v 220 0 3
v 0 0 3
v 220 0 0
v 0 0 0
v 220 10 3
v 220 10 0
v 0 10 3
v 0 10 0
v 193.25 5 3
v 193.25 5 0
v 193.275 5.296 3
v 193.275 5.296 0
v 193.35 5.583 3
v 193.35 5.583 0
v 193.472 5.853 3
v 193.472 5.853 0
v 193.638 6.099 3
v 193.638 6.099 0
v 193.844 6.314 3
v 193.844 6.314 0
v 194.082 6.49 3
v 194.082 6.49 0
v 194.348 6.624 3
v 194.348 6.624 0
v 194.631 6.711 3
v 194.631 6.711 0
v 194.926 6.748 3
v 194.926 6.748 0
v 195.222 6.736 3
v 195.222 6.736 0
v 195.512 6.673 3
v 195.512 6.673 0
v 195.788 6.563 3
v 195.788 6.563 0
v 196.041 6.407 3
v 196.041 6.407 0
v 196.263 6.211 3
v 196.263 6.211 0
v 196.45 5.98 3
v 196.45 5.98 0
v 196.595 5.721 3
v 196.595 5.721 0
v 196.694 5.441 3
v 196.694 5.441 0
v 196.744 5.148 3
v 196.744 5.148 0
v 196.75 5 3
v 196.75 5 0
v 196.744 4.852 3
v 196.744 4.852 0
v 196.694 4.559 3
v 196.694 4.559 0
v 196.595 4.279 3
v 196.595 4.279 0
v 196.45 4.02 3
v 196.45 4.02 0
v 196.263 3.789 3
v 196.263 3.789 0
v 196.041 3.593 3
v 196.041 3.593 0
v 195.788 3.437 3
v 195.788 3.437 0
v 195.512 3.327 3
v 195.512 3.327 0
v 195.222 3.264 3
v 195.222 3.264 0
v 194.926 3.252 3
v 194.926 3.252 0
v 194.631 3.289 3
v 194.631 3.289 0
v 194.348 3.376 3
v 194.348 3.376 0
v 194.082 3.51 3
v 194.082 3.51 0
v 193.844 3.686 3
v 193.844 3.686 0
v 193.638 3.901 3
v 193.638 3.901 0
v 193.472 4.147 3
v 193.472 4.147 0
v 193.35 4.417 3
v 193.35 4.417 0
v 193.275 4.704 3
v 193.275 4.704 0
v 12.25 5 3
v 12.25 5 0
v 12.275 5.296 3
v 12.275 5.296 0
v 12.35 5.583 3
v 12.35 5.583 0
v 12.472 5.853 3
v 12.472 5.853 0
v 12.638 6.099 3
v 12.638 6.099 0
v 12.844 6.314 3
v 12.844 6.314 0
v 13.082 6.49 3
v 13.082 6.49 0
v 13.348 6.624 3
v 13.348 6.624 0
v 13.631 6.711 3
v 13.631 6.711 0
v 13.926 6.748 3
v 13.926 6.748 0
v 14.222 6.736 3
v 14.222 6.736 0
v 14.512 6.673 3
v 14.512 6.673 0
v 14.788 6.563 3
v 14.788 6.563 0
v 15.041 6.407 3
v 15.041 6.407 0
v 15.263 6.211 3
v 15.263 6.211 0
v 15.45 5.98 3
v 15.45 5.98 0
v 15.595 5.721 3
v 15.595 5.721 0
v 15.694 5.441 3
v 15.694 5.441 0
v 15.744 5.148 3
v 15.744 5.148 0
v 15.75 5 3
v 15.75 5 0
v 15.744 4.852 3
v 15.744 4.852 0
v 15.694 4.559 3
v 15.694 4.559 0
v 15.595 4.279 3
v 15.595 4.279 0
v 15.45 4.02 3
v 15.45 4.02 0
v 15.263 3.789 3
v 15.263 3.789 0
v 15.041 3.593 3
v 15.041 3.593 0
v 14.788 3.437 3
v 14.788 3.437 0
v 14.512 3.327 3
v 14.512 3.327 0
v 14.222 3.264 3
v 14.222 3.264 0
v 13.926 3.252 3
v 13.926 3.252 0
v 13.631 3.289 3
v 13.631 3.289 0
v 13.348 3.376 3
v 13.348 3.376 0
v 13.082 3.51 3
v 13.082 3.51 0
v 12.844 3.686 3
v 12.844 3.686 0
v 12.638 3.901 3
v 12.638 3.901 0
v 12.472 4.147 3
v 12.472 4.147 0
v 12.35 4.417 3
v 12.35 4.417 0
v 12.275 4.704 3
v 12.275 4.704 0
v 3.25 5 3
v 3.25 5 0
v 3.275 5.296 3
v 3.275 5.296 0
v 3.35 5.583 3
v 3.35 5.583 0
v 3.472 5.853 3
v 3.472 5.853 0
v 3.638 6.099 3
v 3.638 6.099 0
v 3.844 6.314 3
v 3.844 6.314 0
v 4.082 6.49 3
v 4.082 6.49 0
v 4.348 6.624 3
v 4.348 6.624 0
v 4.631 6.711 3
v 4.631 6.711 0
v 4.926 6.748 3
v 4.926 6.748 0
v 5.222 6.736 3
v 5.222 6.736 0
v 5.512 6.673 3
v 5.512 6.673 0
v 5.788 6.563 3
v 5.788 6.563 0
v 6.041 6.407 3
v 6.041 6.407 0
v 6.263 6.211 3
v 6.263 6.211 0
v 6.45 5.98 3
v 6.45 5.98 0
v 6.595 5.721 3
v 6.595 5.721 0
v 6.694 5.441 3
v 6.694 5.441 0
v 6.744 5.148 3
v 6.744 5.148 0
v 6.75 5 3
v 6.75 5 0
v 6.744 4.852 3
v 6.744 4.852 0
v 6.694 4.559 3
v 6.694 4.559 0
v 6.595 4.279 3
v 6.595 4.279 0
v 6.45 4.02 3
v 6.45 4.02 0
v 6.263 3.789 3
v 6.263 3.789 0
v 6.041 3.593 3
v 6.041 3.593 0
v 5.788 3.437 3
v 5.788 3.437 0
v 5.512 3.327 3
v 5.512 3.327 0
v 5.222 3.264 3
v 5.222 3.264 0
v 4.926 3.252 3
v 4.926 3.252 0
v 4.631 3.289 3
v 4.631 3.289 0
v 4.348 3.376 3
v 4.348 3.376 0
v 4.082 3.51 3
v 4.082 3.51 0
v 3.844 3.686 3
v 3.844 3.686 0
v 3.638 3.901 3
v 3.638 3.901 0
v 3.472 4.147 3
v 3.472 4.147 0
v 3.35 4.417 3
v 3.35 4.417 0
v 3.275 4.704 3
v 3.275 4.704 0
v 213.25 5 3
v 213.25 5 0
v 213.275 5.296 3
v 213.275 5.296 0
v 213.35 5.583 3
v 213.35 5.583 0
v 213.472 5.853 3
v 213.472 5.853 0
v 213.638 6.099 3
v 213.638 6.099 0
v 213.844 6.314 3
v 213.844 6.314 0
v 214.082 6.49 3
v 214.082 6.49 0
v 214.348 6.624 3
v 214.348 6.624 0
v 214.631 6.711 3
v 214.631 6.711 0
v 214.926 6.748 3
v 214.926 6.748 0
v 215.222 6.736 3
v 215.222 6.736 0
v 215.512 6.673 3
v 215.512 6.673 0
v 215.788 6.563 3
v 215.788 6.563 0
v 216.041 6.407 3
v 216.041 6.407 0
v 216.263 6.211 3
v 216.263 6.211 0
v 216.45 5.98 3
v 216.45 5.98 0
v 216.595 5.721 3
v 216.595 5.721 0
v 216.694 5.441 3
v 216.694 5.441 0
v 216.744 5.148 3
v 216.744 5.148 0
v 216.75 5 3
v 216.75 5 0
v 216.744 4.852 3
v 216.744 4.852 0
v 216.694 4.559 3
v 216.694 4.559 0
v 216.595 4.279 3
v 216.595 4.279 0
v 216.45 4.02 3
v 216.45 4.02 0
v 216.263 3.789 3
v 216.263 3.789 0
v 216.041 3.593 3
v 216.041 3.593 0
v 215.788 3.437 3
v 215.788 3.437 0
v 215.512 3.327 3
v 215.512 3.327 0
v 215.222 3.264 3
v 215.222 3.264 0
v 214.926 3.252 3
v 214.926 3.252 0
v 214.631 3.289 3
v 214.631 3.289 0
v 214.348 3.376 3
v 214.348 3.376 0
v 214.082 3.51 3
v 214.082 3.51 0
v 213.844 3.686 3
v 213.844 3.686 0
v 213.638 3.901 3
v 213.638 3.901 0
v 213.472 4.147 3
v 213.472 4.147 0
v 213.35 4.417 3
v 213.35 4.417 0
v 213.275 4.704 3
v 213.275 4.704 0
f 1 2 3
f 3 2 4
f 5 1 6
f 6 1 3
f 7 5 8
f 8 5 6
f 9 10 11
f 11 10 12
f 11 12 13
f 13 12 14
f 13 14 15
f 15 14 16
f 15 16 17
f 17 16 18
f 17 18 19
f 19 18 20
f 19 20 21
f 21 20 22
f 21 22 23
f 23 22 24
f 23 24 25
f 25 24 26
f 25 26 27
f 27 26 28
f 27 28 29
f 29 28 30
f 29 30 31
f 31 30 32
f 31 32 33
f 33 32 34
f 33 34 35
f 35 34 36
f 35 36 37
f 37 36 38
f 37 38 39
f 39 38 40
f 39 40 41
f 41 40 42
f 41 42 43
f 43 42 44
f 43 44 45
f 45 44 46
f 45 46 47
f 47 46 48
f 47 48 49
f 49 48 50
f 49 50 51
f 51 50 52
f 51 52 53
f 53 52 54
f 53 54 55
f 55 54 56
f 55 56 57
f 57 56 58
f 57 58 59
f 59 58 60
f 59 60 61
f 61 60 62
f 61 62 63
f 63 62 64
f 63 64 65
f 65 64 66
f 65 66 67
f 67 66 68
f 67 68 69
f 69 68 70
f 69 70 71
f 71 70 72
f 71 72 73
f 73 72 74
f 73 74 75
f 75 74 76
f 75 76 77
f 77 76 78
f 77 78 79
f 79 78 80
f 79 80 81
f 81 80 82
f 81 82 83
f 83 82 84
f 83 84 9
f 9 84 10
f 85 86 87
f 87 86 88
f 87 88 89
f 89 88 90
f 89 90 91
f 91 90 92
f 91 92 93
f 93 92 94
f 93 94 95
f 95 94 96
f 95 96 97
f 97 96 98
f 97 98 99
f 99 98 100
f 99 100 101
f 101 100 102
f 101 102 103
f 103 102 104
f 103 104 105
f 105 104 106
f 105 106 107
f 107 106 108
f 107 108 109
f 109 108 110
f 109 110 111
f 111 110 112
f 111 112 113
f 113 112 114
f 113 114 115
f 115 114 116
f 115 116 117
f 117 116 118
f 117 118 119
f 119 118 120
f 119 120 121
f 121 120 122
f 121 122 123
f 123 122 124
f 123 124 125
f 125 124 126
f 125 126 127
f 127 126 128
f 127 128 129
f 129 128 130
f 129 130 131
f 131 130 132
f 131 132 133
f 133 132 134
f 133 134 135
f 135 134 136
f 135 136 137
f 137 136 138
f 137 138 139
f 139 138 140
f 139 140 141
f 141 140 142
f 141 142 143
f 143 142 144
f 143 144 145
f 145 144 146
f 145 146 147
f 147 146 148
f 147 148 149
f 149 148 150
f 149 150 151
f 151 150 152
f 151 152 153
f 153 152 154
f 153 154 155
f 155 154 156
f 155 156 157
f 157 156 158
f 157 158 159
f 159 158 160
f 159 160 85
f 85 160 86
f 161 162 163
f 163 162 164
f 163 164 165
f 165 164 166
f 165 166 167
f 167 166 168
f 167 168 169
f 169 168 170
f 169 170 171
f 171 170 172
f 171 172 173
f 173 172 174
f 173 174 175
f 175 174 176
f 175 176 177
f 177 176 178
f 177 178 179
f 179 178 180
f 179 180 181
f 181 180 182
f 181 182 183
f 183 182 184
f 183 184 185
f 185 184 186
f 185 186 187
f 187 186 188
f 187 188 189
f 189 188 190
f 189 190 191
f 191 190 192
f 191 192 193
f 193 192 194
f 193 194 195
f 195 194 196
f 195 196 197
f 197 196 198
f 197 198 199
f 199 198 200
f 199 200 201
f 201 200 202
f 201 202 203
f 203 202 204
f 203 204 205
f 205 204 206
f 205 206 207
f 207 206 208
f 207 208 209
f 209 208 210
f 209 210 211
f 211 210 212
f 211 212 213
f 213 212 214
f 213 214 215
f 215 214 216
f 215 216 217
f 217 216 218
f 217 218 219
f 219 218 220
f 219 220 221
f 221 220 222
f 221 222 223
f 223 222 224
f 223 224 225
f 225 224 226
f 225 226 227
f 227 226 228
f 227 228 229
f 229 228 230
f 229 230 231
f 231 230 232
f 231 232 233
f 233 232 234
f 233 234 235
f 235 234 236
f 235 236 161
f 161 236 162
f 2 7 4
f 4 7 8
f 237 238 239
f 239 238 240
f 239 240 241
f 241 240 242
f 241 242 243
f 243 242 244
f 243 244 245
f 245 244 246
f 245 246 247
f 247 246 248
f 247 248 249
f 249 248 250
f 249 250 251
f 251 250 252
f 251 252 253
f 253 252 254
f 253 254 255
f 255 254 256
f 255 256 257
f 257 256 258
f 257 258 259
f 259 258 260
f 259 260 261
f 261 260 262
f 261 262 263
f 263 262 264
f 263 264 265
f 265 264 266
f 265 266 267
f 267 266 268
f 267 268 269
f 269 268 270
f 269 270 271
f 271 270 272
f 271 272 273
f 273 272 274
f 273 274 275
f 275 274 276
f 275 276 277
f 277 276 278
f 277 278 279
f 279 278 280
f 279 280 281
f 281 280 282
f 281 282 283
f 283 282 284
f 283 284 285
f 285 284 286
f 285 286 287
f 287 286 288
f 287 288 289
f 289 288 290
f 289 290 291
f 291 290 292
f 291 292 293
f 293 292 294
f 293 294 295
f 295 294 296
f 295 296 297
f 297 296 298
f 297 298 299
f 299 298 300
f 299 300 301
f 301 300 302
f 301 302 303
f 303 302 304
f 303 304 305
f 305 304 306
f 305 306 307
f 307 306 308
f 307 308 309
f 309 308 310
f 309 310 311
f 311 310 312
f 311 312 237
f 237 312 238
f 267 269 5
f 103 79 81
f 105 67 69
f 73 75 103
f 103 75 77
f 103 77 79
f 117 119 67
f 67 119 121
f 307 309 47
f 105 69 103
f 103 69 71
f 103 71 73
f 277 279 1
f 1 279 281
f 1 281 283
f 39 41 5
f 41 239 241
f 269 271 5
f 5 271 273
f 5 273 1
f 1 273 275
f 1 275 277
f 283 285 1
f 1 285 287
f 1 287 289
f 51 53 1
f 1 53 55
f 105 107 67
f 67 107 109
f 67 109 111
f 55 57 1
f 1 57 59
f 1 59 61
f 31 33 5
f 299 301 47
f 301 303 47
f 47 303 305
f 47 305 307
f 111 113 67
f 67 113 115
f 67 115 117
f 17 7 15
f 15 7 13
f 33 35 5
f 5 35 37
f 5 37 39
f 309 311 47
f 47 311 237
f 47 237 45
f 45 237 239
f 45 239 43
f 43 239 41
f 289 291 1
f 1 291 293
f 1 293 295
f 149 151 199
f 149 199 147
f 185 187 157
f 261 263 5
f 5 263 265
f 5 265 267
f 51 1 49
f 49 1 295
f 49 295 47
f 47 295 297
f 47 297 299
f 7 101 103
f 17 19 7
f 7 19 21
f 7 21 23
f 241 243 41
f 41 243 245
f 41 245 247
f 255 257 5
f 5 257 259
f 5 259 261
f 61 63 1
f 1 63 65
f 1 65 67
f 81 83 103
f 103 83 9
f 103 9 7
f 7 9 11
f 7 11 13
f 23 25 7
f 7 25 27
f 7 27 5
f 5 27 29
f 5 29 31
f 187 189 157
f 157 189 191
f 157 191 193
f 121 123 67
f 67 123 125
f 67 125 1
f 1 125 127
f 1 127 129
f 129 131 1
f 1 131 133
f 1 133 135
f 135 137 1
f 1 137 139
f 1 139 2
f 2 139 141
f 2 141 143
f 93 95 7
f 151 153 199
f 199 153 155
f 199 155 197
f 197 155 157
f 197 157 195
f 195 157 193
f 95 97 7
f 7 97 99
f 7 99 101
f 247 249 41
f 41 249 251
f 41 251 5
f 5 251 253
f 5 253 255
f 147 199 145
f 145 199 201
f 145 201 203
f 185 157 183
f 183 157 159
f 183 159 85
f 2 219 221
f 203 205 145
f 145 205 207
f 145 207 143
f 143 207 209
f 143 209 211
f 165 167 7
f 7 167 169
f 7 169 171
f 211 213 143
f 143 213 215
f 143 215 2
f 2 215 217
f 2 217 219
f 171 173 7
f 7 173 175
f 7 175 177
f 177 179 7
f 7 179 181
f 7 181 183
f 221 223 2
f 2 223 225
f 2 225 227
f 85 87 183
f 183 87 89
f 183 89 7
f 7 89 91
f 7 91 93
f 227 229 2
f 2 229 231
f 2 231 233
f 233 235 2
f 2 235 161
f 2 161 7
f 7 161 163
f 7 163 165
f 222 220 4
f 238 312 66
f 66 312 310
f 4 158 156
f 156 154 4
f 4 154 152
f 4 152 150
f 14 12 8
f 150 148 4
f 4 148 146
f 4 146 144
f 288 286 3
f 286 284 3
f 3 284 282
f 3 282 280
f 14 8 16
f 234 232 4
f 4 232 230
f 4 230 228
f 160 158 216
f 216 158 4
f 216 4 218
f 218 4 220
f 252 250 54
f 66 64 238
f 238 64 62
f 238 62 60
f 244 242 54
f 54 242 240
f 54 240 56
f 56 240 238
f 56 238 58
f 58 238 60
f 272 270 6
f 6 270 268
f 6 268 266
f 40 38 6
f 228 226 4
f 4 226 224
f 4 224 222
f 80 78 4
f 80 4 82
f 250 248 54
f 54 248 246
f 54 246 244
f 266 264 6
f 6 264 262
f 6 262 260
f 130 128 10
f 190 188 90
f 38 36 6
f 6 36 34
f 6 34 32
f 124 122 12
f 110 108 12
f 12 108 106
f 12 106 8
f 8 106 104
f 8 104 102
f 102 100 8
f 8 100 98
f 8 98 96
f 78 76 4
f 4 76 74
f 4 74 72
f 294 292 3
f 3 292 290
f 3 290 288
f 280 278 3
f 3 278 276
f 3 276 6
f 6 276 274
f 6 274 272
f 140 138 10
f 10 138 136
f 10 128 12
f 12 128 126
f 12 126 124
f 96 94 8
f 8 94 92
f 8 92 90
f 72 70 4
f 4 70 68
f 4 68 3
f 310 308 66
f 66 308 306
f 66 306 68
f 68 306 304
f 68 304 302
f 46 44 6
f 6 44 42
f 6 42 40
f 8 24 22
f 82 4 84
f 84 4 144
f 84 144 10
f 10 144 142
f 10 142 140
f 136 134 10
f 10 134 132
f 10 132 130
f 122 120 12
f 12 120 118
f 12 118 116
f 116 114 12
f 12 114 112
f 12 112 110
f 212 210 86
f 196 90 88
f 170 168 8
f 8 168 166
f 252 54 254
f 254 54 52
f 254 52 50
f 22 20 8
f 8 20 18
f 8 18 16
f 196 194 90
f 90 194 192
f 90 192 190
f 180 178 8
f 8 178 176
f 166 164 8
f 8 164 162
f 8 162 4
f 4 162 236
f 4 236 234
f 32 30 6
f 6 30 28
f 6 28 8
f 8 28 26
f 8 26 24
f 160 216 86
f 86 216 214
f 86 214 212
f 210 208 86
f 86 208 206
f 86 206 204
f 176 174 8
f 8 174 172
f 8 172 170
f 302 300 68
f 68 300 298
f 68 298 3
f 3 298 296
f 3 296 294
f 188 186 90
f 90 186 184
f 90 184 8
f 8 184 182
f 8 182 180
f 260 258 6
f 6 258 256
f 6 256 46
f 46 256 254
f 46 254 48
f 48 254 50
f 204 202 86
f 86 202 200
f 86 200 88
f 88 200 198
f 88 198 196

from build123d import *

# Parameters (mm, degrees)
SKETCH_1_W      = 100
SKETCH_1_H      = 10
SKETCH_1_R      = 1.75
SKETCH_1_W_2    = 20
EXTRUDE_1_DEPTH = 3


with BuildPart() as part:
    # 草图1 → 凸台-拉伸1 (new body)
    # profile 1 of 3: a face of its own
    with BuildSketch(Plane.XY):
        with Locations((50, 5)):
            Rectangle(SKETCH_1_W, SKETCH_1_H)
        with Locations((5, 5)):
            Circle(SKETCH_1_R, mode=Mode.SUBTRACT)
        with Locations((14, 5)):
            Circle(SKETCH_1_R, mode=Mode.SUBTRACT)
    # profile 2 of 3: a face of its own
    with BuildSketch(Plane.XY):
        with Locations((150, 5)):
            Rectangle(SKETCH_1_W, SKETCH_1_H)
        with Locations((195, 5)):
            Circle(SKETCH_1_R, mode=Mode.SUBTRACT)
    # profile 3 of 3: a face of its own
    with BuildSketch(Plane.XY):
        with Locations((210, 5)):
            Rectangle(SKETCH_1_W_2, SKETCH_1_H)
        with Locations((215, 5)):
            Circle(SKETCH_1_R, mode=Mode.SUBTRACT)
    extrude(amount=EXTRUDE_1_DEPTH)


solid = part.part
